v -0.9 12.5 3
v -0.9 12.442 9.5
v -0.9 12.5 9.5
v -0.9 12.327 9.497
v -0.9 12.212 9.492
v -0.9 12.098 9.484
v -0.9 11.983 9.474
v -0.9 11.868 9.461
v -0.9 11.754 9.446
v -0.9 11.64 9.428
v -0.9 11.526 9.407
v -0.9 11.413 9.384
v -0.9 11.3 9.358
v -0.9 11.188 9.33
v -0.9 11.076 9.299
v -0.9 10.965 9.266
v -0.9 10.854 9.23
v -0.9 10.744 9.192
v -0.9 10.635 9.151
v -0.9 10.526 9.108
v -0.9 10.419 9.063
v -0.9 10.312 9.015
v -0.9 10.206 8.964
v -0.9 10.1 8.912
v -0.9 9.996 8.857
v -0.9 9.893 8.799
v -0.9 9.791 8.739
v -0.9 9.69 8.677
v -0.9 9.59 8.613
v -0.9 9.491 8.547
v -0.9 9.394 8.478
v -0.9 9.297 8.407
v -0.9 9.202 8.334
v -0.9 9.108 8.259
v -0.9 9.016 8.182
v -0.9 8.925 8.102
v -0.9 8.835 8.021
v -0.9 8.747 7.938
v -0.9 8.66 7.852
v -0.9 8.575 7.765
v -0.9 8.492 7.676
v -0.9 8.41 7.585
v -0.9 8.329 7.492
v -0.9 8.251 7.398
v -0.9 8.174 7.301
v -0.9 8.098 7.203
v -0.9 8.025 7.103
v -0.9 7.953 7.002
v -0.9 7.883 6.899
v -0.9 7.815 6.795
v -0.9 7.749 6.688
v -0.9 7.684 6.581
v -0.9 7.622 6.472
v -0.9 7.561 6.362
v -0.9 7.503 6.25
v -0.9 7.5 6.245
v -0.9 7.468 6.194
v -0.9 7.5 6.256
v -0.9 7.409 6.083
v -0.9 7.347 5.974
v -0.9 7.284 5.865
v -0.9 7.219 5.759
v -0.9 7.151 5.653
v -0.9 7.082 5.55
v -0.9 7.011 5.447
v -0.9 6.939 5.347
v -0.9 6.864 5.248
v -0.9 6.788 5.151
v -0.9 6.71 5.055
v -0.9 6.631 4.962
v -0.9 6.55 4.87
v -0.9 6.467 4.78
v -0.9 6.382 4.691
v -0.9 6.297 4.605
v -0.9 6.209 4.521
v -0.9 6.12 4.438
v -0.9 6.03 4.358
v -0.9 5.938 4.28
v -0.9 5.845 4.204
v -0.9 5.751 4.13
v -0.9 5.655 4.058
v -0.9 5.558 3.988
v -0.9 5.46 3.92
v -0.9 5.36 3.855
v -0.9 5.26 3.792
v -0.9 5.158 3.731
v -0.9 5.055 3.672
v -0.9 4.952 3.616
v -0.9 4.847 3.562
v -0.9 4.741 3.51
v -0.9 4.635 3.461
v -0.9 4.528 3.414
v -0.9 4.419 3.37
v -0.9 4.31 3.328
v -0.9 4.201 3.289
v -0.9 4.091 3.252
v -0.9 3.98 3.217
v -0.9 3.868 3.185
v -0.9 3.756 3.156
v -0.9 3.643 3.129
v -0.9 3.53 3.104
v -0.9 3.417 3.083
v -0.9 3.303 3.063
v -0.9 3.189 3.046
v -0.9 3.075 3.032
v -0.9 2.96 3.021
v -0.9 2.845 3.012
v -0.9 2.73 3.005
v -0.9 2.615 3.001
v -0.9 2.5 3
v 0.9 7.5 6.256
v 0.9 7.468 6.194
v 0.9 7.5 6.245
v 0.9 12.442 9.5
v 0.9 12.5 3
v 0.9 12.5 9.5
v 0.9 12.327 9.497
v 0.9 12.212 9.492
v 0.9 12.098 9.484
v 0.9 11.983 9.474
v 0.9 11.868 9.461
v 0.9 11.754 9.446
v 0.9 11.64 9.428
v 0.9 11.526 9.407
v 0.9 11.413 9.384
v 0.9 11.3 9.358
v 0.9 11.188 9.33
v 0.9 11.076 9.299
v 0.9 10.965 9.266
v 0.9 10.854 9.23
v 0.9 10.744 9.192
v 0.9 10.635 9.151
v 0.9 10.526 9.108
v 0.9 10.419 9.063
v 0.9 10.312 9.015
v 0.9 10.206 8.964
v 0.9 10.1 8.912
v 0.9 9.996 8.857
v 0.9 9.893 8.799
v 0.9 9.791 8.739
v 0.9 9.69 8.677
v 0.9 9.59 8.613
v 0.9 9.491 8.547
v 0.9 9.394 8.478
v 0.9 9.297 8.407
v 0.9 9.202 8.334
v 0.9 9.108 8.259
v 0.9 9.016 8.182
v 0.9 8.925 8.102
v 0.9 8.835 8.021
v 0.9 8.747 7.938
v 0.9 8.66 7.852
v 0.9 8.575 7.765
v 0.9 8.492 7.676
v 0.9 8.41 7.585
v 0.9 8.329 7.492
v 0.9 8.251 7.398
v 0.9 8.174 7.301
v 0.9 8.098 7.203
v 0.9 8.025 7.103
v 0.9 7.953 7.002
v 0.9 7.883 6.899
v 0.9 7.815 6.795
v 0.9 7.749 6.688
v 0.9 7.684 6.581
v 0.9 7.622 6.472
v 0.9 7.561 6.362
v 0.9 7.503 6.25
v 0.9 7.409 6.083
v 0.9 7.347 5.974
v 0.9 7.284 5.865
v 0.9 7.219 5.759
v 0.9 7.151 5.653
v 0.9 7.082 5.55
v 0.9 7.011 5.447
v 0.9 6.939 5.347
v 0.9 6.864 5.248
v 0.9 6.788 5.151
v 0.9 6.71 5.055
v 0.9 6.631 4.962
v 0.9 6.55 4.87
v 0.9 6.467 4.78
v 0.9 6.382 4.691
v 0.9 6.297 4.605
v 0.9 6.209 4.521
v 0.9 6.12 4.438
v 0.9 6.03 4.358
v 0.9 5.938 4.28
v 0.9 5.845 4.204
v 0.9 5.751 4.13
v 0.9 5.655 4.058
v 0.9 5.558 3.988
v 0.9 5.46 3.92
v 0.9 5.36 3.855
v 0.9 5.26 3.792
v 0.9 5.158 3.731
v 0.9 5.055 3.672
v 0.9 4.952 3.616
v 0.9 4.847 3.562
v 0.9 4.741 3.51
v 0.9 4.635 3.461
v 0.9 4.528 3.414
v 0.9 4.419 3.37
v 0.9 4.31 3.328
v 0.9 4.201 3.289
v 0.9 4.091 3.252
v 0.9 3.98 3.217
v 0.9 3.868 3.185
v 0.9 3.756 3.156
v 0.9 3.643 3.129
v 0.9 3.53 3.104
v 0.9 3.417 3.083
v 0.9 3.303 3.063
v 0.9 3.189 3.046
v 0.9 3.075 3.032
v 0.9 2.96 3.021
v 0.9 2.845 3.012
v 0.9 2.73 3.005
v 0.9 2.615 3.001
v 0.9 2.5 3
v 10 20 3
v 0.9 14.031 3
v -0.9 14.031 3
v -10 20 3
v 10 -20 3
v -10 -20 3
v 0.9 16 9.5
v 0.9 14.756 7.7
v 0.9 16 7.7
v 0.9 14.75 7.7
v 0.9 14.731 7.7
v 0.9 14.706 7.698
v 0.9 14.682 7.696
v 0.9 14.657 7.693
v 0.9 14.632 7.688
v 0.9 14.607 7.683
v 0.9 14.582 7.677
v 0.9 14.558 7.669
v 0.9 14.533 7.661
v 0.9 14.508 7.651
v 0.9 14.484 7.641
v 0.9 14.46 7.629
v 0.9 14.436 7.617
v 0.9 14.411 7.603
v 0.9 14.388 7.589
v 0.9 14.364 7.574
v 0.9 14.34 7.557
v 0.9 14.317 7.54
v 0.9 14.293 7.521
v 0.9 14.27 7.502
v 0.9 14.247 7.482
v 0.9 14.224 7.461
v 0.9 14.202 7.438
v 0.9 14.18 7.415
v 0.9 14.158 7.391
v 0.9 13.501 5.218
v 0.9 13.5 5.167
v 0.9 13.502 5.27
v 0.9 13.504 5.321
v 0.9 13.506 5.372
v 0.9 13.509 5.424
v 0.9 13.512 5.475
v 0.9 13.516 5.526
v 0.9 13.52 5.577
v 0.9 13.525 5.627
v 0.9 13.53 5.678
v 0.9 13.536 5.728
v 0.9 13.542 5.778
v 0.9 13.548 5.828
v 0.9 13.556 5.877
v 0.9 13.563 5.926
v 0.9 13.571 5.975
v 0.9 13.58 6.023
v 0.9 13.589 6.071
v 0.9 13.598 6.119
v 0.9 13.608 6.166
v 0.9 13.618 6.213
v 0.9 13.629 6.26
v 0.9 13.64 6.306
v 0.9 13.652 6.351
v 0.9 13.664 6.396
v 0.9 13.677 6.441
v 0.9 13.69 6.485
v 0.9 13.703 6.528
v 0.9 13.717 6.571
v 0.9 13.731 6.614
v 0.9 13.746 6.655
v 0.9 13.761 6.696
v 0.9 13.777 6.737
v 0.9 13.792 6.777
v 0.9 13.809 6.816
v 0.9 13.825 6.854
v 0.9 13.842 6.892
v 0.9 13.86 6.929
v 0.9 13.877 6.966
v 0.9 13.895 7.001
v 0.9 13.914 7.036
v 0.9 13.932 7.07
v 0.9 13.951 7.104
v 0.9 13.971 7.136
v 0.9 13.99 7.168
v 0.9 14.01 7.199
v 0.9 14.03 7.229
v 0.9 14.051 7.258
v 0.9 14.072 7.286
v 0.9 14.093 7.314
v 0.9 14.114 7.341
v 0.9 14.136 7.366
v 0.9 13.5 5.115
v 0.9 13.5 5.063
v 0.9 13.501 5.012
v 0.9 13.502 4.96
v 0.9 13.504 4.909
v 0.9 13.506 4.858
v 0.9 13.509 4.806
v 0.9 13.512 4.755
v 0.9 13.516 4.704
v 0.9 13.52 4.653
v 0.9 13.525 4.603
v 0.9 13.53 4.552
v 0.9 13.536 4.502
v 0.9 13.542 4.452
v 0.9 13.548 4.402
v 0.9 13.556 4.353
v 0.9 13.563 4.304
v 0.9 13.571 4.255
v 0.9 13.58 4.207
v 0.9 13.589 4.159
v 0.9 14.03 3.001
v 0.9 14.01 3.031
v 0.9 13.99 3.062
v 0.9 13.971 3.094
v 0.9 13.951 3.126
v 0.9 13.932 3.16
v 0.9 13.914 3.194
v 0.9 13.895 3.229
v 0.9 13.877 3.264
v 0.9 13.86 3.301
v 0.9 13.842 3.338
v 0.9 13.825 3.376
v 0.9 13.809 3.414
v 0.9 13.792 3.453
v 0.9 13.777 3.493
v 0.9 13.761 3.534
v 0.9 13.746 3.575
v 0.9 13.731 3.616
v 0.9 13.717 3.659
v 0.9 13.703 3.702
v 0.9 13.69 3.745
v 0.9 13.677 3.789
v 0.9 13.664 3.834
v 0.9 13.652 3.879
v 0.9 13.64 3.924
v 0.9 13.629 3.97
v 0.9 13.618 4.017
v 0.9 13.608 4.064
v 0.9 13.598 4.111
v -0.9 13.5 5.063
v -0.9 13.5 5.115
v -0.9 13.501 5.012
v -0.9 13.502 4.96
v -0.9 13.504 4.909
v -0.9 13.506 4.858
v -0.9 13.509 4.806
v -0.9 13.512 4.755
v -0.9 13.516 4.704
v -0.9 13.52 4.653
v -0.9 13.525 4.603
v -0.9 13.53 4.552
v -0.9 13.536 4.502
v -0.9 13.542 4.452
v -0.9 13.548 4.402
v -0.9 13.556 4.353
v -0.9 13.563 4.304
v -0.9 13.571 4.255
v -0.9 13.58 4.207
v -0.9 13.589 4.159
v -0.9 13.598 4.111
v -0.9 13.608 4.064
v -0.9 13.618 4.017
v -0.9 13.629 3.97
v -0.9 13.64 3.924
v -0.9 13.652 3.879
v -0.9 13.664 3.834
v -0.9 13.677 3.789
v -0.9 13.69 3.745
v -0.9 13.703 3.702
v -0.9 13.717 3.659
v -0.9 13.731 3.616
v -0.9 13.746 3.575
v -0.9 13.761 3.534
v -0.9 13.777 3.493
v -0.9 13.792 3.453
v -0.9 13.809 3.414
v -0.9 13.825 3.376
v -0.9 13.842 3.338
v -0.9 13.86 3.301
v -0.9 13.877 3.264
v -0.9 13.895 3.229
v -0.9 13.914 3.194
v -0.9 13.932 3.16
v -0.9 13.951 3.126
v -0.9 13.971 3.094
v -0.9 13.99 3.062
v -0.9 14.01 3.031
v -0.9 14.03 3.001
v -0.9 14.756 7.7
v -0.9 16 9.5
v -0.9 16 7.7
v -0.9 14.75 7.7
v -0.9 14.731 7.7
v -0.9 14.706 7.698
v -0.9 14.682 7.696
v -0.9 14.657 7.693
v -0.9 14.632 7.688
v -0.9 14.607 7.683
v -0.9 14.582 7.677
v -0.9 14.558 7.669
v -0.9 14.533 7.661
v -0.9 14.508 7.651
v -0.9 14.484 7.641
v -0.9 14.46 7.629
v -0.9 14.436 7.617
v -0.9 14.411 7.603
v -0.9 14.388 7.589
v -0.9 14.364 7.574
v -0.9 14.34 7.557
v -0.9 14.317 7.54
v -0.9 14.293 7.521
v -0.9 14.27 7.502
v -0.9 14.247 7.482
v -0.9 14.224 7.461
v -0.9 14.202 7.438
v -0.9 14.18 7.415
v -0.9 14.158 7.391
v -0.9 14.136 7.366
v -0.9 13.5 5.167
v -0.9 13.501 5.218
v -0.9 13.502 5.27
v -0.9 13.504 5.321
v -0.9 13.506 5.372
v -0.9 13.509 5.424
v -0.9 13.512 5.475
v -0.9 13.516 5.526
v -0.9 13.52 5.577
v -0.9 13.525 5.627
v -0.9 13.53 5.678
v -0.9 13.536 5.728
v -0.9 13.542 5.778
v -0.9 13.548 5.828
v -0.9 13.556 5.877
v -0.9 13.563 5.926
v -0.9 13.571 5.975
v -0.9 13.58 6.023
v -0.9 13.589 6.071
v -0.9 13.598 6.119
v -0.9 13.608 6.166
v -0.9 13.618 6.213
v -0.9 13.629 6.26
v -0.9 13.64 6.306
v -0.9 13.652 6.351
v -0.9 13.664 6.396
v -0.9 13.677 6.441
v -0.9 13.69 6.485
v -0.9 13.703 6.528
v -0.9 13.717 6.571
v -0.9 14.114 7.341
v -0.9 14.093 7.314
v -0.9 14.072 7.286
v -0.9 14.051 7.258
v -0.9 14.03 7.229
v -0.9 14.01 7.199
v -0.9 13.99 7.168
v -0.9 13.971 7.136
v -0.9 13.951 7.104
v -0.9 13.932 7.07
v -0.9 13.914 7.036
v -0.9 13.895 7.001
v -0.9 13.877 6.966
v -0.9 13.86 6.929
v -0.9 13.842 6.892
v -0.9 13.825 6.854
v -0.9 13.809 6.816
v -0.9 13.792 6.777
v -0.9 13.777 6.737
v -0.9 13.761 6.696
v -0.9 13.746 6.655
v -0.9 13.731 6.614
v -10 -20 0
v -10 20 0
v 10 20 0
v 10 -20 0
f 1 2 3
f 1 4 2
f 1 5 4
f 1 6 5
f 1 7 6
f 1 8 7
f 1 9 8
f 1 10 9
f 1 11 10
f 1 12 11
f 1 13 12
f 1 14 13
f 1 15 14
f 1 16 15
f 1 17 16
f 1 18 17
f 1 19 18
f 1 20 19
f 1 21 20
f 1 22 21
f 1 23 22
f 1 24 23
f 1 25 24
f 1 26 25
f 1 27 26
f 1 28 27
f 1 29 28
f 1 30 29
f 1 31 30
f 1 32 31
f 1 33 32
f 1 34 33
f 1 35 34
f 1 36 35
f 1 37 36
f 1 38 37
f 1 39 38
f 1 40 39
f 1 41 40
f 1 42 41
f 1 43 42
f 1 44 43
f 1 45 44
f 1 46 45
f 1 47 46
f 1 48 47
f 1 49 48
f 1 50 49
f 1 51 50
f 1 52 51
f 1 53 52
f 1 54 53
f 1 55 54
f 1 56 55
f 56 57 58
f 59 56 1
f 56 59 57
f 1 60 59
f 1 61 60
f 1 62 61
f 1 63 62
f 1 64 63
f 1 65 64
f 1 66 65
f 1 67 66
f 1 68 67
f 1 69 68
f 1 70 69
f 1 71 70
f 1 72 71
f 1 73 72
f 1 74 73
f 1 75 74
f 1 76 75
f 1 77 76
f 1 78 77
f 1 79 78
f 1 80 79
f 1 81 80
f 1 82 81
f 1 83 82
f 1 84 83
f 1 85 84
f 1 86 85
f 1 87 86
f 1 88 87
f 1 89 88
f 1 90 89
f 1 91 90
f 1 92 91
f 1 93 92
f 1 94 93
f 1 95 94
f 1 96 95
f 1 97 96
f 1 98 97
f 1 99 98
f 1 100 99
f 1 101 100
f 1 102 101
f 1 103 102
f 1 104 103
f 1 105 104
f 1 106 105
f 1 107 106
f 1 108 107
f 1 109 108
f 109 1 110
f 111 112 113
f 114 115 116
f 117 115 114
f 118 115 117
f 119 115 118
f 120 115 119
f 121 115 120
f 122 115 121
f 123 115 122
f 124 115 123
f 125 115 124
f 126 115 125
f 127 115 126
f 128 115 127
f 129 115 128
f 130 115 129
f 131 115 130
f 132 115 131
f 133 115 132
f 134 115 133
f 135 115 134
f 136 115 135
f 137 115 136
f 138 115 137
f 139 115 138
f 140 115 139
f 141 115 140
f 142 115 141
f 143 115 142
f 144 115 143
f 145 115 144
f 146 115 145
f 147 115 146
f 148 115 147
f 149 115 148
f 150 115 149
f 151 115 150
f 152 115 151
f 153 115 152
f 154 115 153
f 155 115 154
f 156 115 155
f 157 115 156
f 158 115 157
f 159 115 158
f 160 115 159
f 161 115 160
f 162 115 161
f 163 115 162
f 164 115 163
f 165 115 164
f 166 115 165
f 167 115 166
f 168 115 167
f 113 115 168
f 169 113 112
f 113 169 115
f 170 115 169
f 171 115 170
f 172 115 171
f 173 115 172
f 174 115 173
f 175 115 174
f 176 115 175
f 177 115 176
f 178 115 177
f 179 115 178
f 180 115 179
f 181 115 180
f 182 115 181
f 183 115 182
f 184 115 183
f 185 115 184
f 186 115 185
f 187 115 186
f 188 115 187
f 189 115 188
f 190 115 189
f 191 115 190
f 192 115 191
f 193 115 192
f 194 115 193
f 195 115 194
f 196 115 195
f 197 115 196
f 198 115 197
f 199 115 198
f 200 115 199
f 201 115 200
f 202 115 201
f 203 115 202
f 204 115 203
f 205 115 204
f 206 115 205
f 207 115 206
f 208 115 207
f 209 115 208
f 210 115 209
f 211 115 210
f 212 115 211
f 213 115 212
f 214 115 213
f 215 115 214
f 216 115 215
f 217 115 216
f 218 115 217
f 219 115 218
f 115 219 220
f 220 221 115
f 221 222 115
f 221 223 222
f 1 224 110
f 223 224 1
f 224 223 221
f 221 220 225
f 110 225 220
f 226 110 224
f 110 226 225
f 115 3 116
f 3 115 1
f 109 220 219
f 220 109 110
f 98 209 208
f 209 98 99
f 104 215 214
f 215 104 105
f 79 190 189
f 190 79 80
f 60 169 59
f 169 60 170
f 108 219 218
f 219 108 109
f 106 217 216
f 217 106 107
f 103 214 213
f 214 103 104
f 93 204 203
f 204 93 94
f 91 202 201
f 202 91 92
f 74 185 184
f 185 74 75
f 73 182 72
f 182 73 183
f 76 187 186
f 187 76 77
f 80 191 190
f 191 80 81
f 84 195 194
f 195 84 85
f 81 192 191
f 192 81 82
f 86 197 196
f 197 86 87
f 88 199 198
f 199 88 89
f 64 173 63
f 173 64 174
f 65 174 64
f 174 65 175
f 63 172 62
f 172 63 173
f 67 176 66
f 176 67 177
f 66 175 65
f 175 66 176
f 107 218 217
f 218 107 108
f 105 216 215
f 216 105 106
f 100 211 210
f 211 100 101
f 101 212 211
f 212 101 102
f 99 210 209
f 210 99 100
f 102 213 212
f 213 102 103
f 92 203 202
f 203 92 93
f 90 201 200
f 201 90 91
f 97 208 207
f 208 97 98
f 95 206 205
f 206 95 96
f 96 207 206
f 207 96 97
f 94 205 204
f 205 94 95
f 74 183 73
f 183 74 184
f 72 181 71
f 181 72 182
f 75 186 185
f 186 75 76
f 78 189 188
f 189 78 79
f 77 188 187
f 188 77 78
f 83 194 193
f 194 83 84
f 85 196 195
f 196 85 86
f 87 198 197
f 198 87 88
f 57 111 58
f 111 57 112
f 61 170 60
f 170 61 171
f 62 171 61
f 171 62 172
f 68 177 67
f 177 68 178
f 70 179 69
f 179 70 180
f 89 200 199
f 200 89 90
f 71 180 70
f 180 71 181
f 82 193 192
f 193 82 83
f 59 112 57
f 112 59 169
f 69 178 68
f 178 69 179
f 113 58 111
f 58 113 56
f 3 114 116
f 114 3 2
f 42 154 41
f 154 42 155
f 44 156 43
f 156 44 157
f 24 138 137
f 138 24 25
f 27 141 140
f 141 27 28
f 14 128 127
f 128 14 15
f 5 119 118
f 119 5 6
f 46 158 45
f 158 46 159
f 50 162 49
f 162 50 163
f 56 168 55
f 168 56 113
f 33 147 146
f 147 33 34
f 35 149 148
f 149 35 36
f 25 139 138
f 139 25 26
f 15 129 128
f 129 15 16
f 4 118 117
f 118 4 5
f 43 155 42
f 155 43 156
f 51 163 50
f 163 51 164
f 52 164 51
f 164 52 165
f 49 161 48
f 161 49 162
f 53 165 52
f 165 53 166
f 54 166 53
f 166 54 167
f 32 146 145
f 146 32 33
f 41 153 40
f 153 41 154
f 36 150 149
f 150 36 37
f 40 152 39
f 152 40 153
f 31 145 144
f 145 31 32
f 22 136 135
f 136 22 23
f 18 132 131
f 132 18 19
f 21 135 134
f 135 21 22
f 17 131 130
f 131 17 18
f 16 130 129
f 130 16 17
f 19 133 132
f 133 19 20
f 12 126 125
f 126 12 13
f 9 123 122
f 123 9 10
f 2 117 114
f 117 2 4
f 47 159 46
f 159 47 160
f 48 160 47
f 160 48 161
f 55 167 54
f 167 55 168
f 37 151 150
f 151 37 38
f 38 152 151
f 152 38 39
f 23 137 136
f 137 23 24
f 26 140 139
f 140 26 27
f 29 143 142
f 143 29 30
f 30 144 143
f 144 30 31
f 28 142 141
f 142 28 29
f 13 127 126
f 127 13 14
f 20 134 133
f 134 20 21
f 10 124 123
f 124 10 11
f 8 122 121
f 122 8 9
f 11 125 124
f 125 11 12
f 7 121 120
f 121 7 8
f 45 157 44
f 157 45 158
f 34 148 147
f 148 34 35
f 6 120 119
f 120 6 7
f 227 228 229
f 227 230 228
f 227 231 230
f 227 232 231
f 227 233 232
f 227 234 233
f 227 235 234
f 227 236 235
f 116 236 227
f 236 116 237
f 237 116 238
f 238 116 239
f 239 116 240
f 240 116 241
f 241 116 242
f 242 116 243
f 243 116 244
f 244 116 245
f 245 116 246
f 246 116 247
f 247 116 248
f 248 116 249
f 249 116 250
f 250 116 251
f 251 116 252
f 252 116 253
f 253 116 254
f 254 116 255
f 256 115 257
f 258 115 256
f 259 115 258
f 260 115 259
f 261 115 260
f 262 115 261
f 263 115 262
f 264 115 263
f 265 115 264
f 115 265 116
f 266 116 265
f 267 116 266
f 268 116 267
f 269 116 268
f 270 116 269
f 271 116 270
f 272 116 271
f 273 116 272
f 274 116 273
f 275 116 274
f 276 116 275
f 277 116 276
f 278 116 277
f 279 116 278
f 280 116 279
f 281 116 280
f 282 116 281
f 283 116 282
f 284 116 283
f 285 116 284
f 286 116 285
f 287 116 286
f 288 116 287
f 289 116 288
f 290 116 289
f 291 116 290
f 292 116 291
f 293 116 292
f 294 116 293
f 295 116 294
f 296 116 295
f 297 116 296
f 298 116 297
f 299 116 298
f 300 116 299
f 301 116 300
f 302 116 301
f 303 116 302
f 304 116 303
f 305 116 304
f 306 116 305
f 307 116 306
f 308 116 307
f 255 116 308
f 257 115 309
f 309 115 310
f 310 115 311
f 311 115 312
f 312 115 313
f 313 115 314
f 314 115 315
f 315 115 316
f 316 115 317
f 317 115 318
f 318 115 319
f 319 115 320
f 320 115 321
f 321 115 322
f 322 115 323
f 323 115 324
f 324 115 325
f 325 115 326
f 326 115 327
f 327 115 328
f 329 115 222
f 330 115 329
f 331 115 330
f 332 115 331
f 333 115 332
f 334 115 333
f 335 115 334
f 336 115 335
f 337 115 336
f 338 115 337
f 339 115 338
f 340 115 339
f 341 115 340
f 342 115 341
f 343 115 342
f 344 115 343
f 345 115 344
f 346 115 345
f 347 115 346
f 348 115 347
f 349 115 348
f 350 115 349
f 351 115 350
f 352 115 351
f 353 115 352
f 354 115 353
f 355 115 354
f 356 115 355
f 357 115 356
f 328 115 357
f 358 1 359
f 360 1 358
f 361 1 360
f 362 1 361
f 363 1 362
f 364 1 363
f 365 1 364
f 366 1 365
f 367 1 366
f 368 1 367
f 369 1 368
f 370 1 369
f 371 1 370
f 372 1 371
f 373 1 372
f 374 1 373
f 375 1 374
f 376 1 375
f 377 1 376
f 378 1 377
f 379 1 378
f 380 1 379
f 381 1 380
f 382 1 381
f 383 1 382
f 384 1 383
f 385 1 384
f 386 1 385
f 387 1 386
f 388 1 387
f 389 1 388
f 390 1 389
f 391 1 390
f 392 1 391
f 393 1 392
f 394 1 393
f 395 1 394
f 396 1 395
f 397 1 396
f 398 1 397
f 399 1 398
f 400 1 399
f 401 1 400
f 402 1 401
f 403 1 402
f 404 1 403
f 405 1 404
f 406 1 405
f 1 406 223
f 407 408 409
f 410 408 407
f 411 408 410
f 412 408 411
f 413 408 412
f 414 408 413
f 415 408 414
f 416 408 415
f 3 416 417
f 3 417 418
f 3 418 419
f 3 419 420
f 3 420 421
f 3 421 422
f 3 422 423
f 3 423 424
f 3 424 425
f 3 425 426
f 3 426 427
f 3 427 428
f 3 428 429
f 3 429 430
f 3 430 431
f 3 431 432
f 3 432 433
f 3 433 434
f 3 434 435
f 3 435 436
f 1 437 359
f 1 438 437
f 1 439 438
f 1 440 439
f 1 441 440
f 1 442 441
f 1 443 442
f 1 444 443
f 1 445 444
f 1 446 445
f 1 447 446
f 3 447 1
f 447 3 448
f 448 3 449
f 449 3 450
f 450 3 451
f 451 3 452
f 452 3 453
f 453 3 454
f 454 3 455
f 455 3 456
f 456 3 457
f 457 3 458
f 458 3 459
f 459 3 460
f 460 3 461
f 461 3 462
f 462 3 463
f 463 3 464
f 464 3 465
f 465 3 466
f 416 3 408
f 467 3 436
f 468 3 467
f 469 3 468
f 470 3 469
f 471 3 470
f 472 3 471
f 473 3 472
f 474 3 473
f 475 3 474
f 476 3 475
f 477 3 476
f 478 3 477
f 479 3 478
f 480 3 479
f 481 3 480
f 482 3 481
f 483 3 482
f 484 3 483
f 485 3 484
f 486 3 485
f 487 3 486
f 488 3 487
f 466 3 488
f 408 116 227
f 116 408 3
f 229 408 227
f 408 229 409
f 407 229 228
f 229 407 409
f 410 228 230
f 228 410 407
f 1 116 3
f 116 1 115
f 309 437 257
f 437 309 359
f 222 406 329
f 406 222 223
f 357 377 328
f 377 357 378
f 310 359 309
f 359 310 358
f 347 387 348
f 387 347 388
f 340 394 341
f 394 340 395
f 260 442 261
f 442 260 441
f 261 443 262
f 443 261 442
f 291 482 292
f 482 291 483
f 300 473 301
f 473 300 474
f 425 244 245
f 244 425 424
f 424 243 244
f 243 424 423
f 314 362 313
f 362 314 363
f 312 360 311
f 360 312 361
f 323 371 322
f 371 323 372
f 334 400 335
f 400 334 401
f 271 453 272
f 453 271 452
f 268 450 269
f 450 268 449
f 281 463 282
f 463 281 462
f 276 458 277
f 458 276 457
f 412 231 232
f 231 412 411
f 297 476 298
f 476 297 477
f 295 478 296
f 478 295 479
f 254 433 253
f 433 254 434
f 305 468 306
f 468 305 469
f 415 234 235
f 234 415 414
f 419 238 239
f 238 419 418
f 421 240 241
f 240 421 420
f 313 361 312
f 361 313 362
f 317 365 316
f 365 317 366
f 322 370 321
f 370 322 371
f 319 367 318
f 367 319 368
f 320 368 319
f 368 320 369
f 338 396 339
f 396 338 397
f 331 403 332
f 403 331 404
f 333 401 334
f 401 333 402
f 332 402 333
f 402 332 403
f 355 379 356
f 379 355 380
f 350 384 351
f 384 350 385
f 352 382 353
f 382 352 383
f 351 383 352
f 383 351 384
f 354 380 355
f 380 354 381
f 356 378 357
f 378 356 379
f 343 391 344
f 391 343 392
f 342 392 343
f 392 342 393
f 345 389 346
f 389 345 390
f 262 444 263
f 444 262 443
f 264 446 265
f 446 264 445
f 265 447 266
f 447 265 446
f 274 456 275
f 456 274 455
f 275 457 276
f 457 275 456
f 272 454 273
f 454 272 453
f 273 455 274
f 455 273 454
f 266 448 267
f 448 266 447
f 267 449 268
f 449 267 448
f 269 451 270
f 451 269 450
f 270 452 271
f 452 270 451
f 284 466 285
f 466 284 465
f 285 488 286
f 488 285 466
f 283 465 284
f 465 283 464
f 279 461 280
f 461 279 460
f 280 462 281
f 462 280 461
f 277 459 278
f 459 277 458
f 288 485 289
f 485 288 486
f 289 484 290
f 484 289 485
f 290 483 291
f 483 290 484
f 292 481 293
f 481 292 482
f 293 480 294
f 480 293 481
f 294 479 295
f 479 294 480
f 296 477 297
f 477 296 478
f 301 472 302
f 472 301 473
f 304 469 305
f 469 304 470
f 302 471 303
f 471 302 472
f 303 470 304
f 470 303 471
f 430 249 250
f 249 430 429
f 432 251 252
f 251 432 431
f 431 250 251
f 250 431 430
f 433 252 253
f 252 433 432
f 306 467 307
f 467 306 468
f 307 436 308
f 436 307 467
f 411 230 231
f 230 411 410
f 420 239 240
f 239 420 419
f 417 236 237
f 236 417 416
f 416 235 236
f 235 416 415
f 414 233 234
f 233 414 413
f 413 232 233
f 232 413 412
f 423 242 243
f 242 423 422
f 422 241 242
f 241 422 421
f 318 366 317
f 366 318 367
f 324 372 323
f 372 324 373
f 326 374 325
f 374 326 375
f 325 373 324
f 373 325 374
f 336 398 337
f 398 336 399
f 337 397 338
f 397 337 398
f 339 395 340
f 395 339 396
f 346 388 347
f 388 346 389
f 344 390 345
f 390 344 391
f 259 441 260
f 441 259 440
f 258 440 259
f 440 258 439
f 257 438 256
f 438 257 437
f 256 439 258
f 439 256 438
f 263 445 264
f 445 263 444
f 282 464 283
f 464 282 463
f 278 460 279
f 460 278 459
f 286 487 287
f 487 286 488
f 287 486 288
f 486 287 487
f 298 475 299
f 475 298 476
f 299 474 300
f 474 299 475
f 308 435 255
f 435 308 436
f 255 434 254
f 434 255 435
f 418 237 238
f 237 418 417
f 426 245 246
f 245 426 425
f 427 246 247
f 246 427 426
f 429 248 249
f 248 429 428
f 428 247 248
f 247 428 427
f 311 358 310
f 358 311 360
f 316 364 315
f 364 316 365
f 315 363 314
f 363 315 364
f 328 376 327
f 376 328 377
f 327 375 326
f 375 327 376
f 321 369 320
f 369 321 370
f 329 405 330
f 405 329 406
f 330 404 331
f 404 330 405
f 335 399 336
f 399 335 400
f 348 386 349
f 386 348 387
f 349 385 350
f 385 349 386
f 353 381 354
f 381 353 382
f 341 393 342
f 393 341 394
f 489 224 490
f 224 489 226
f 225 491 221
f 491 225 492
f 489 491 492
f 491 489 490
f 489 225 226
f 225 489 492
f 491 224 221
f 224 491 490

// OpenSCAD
// increase how smooth the output files are
$fa = 0.1;
$fs = 0.02;

// basic parameters of the object - width, height, depth define size of the base
width = 20;
height = 40;
depth = 3;

// paramaters for the hanger itself
hanger_offset = 4.0;
hanger_diameter = 1.8;
hanger_length = 2.5;
hanger_length2 = 1;
hanger_height = 6.5;
hanger_length_cosine = 10;

module hanger_lower_ending(size=[1,1,1]) {
  resize(size)
  union() {
    translate([0, -1.733 / 2.0, 1])
      intersection() {
        difference() {
          translate([0, 1.733 / 2.0, -0.5])
            cube([1, 1.733, 1], center=true);
          rotate([0, 90, 0])
            cylinder(h=2, r = 1, center=true);
        };
        union() {
          translate([0, 0, -0.5])
            cube([1, 1.733, 1], center=true);
          translate([0, 1.733, -1])
              rotate([0, 90, 0])
                cylinder(h=2, r = 1, center=true);
        };
      };
    };
};

color(c = [0.6, 0.6, 0.6])
  render()
  translate([0, 0, depth / 2.0])
  union() {
    cube([width, height, depth], center=true);

    translate([0, height / 2.0 - hanger_offset - (hanger_length2 + hanger_length) - hanger_length_cosine / 2.0, depth / 2.0])
      hanger_lower_ending(size=[hanger_diameter, hanger_length_cosine, hanger_height]);
  
    difference() {
    translate([0, height / 2.0 - hanger_offset - (hanger_length2 + hanger_length), depth / 2])
      rotate([90, 0, 270])
      linear_extrude(height = hanger_diameter, center=true) {
        polygon([
          [0, 0],
          [-hanger_length2 - hanger_length / 2.0, 0],
          [-hanger_length2 - hanger_length / 2.0, hanger_height - hanger_diameter],
          [-hanger_length2 - hanger_length, hanger_height - hanger_diameter],
          [-hanger_length2 - hanger_length, hanger_height],
          [0, hanger_height]
        ]);
      };

      translate([0, height / 2.0 - hanger_offset - hanger_length / 2.0, depth / 2.0 + (hanger_height - hanger_diameter) * 0.45])
        rotate([90, 0, 270])
        resize([hanger_length, (hanger_height - hanger_diameter) * 1.1, width])
        cylinder(h= 1, r = 1, center=true);
    };
  };
